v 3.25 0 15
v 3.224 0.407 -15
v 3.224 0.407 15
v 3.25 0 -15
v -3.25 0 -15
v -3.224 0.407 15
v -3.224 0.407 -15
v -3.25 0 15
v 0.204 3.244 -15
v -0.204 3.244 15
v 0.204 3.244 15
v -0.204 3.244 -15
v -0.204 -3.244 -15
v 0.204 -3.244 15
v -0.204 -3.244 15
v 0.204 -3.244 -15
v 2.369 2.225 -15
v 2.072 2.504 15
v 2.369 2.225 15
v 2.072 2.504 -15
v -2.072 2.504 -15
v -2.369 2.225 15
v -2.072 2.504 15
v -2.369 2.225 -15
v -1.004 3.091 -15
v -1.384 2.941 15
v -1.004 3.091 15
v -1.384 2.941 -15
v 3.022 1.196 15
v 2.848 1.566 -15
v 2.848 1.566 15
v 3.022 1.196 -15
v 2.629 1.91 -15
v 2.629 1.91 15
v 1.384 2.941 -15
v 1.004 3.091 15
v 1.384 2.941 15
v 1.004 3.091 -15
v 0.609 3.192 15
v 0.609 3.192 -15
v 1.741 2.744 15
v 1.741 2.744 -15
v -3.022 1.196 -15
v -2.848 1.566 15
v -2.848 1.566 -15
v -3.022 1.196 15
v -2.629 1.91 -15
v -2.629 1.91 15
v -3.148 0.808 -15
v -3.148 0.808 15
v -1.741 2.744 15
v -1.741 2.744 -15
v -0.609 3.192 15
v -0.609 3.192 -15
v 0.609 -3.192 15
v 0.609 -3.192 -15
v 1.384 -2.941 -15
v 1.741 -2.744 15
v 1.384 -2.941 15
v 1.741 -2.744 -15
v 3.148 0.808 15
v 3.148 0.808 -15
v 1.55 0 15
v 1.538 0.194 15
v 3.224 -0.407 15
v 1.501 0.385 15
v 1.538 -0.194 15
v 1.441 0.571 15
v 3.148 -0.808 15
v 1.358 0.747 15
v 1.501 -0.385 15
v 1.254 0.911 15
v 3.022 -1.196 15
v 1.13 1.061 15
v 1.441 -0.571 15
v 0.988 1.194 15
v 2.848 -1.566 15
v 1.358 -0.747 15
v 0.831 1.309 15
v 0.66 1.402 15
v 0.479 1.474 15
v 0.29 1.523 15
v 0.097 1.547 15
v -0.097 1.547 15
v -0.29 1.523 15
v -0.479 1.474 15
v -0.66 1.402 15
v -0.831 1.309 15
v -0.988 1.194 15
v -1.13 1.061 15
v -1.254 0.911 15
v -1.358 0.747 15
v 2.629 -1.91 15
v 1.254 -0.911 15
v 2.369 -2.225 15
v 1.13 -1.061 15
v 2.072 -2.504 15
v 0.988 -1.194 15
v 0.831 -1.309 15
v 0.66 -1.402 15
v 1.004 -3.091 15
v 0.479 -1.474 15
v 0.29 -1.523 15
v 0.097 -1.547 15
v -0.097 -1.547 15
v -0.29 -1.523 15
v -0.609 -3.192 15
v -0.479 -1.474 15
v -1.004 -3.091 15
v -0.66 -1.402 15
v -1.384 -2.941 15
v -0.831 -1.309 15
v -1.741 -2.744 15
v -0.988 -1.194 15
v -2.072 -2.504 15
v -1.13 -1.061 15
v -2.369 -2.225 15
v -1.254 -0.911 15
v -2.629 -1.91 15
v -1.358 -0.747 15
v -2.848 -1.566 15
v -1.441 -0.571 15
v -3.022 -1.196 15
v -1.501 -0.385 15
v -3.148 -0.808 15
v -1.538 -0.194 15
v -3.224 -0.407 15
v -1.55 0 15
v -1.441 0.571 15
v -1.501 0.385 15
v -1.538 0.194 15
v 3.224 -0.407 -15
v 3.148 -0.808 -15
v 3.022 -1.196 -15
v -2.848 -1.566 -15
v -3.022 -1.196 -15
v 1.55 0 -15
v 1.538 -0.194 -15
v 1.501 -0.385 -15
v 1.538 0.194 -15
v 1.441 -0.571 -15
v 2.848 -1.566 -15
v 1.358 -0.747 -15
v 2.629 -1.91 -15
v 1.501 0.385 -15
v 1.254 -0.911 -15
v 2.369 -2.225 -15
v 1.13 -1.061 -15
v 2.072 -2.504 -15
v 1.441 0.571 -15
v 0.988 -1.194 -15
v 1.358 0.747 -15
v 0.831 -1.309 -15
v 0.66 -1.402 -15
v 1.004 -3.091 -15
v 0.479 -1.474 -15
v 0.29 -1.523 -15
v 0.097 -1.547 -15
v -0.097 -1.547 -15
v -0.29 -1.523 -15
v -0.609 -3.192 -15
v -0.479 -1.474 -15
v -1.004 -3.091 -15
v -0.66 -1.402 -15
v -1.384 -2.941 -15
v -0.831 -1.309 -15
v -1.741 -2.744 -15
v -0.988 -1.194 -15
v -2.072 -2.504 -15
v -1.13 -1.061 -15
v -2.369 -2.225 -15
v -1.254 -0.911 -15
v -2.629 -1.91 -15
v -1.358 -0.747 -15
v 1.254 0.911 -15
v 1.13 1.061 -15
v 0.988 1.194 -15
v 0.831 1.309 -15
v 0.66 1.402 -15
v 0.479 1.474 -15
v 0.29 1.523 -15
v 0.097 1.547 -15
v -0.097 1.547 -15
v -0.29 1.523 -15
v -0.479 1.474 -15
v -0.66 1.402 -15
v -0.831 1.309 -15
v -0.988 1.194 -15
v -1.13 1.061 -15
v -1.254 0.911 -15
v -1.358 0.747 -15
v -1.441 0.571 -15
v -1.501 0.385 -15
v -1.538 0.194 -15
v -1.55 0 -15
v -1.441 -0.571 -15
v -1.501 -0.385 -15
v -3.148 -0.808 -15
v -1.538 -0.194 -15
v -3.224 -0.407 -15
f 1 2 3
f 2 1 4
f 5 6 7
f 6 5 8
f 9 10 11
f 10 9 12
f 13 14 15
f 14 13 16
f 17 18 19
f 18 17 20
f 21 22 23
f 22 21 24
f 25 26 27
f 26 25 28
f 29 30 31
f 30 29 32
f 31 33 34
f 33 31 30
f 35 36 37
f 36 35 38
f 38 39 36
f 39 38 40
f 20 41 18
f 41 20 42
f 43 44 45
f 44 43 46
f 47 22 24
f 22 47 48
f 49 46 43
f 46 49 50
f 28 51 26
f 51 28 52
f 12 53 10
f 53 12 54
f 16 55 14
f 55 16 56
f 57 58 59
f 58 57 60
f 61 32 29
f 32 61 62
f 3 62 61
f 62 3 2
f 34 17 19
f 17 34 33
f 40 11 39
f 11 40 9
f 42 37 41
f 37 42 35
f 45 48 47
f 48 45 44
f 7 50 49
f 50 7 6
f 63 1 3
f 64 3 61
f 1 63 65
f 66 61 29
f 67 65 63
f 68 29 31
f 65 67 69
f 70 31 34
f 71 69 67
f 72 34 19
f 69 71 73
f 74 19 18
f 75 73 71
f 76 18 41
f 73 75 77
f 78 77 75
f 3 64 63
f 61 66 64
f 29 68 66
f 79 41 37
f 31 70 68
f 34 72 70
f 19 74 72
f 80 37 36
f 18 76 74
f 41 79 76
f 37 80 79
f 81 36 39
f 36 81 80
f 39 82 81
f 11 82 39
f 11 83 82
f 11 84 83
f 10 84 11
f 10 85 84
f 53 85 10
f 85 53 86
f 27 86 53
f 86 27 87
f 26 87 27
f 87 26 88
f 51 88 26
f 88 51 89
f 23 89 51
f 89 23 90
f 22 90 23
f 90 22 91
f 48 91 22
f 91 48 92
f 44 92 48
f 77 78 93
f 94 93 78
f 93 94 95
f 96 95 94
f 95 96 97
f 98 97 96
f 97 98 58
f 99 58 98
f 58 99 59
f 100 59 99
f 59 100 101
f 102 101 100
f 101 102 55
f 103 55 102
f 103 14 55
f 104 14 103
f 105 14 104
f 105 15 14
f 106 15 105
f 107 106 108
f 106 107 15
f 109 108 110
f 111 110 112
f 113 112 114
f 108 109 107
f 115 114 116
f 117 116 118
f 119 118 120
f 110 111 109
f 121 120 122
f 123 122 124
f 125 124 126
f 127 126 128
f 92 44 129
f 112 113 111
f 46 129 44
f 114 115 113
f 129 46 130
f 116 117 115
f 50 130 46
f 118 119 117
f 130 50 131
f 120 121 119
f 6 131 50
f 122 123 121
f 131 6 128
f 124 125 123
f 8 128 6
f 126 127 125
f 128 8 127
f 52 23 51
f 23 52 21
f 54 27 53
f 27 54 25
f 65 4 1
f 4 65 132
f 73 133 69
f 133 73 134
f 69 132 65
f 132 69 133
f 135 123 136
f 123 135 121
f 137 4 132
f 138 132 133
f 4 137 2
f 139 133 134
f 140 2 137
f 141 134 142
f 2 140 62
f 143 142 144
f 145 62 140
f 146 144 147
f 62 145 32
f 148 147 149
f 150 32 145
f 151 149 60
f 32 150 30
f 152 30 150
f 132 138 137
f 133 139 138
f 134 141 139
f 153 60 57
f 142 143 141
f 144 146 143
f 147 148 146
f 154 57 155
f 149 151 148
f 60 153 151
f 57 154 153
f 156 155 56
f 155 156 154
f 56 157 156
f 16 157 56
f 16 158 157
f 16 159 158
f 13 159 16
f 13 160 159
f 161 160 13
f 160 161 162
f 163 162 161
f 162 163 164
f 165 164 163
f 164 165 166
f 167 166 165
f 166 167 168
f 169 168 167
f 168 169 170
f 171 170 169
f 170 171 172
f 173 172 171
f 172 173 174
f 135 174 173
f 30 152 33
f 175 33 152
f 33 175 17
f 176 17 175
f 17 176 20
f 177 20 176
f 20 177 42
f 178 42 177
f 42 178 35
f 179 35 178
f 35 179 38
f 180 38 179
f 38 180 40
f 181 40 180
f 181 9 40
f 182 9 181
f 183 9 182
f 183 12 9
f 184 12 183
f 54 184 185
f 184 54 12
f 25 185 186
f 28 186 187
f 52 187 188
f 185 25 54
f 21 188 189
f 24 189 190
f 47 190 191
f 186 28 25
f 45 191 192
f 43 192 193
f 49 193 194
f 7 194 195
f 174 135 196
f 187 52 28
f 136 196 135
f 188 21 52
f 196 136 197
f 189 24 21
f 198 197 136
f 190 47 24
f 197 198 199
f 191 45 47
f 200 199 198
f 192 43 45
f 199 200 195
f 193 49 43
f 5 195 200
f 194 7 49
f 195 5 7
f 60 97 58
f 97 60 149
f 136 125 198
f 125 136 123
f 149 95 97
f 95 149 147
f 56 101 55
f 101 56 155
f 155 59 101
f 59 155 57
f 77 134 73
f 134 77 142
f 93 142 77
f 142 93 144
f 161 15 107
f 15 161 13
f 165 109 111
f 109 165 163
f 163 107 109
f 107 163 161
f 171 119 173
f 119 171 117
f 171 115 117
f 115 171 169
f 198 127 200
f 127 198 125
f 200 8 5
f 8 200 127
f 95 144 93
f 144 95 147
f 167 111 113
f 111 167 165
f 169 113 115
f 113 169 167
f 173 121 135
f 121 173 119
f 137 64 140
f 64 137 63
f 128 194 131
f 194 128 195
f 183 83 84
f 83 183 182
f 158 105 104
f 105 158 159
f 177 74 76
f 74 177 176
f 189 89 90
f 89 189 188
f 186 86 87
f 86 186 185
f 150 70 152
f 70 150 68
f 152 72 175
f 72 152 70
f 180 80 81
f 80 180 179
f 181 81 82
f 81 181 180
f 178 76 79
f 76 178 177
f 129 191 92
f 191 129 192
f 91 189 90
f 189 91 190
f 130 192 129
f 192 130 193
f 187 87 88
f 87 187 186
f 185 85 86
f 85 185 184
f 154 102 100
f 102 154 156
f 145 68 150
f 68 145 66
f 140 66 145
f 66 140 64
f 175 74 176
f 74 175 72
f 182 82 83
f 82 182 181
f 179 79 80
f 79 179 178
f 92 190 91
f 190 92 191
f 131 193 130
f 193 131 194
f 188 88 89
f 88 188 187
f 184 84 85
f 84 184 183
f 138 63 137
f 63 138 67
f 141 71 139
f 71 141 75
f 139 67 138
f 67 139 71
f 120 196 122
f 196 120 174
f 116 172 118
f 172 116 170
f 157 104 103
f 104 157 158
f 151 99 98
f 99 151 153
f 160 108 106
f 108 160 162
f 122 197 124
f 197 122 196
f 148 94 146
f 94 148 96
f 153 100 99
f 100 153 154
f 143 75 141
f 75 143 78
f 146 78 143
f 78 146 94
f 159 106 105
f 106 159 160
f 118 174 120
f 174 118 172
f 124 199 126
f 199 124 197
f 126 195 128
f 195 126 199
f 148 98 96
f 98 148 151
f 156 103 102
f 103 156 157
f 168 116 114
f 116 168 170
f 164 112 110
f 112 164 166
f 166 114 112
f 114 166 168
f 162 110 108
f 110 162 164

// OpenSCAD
$fn = 50;


difference() {
	union() {
		translate(v = [0, 0, -15.0000000000]) {
			cylinder(h = 30, r = 3.2500000000);
		}
	}
	union() {
		translate(v = [0, 0, -100.0000000000]) {
			cylinder(h = 200, r = 1.5500000000);
		}
	}
}
